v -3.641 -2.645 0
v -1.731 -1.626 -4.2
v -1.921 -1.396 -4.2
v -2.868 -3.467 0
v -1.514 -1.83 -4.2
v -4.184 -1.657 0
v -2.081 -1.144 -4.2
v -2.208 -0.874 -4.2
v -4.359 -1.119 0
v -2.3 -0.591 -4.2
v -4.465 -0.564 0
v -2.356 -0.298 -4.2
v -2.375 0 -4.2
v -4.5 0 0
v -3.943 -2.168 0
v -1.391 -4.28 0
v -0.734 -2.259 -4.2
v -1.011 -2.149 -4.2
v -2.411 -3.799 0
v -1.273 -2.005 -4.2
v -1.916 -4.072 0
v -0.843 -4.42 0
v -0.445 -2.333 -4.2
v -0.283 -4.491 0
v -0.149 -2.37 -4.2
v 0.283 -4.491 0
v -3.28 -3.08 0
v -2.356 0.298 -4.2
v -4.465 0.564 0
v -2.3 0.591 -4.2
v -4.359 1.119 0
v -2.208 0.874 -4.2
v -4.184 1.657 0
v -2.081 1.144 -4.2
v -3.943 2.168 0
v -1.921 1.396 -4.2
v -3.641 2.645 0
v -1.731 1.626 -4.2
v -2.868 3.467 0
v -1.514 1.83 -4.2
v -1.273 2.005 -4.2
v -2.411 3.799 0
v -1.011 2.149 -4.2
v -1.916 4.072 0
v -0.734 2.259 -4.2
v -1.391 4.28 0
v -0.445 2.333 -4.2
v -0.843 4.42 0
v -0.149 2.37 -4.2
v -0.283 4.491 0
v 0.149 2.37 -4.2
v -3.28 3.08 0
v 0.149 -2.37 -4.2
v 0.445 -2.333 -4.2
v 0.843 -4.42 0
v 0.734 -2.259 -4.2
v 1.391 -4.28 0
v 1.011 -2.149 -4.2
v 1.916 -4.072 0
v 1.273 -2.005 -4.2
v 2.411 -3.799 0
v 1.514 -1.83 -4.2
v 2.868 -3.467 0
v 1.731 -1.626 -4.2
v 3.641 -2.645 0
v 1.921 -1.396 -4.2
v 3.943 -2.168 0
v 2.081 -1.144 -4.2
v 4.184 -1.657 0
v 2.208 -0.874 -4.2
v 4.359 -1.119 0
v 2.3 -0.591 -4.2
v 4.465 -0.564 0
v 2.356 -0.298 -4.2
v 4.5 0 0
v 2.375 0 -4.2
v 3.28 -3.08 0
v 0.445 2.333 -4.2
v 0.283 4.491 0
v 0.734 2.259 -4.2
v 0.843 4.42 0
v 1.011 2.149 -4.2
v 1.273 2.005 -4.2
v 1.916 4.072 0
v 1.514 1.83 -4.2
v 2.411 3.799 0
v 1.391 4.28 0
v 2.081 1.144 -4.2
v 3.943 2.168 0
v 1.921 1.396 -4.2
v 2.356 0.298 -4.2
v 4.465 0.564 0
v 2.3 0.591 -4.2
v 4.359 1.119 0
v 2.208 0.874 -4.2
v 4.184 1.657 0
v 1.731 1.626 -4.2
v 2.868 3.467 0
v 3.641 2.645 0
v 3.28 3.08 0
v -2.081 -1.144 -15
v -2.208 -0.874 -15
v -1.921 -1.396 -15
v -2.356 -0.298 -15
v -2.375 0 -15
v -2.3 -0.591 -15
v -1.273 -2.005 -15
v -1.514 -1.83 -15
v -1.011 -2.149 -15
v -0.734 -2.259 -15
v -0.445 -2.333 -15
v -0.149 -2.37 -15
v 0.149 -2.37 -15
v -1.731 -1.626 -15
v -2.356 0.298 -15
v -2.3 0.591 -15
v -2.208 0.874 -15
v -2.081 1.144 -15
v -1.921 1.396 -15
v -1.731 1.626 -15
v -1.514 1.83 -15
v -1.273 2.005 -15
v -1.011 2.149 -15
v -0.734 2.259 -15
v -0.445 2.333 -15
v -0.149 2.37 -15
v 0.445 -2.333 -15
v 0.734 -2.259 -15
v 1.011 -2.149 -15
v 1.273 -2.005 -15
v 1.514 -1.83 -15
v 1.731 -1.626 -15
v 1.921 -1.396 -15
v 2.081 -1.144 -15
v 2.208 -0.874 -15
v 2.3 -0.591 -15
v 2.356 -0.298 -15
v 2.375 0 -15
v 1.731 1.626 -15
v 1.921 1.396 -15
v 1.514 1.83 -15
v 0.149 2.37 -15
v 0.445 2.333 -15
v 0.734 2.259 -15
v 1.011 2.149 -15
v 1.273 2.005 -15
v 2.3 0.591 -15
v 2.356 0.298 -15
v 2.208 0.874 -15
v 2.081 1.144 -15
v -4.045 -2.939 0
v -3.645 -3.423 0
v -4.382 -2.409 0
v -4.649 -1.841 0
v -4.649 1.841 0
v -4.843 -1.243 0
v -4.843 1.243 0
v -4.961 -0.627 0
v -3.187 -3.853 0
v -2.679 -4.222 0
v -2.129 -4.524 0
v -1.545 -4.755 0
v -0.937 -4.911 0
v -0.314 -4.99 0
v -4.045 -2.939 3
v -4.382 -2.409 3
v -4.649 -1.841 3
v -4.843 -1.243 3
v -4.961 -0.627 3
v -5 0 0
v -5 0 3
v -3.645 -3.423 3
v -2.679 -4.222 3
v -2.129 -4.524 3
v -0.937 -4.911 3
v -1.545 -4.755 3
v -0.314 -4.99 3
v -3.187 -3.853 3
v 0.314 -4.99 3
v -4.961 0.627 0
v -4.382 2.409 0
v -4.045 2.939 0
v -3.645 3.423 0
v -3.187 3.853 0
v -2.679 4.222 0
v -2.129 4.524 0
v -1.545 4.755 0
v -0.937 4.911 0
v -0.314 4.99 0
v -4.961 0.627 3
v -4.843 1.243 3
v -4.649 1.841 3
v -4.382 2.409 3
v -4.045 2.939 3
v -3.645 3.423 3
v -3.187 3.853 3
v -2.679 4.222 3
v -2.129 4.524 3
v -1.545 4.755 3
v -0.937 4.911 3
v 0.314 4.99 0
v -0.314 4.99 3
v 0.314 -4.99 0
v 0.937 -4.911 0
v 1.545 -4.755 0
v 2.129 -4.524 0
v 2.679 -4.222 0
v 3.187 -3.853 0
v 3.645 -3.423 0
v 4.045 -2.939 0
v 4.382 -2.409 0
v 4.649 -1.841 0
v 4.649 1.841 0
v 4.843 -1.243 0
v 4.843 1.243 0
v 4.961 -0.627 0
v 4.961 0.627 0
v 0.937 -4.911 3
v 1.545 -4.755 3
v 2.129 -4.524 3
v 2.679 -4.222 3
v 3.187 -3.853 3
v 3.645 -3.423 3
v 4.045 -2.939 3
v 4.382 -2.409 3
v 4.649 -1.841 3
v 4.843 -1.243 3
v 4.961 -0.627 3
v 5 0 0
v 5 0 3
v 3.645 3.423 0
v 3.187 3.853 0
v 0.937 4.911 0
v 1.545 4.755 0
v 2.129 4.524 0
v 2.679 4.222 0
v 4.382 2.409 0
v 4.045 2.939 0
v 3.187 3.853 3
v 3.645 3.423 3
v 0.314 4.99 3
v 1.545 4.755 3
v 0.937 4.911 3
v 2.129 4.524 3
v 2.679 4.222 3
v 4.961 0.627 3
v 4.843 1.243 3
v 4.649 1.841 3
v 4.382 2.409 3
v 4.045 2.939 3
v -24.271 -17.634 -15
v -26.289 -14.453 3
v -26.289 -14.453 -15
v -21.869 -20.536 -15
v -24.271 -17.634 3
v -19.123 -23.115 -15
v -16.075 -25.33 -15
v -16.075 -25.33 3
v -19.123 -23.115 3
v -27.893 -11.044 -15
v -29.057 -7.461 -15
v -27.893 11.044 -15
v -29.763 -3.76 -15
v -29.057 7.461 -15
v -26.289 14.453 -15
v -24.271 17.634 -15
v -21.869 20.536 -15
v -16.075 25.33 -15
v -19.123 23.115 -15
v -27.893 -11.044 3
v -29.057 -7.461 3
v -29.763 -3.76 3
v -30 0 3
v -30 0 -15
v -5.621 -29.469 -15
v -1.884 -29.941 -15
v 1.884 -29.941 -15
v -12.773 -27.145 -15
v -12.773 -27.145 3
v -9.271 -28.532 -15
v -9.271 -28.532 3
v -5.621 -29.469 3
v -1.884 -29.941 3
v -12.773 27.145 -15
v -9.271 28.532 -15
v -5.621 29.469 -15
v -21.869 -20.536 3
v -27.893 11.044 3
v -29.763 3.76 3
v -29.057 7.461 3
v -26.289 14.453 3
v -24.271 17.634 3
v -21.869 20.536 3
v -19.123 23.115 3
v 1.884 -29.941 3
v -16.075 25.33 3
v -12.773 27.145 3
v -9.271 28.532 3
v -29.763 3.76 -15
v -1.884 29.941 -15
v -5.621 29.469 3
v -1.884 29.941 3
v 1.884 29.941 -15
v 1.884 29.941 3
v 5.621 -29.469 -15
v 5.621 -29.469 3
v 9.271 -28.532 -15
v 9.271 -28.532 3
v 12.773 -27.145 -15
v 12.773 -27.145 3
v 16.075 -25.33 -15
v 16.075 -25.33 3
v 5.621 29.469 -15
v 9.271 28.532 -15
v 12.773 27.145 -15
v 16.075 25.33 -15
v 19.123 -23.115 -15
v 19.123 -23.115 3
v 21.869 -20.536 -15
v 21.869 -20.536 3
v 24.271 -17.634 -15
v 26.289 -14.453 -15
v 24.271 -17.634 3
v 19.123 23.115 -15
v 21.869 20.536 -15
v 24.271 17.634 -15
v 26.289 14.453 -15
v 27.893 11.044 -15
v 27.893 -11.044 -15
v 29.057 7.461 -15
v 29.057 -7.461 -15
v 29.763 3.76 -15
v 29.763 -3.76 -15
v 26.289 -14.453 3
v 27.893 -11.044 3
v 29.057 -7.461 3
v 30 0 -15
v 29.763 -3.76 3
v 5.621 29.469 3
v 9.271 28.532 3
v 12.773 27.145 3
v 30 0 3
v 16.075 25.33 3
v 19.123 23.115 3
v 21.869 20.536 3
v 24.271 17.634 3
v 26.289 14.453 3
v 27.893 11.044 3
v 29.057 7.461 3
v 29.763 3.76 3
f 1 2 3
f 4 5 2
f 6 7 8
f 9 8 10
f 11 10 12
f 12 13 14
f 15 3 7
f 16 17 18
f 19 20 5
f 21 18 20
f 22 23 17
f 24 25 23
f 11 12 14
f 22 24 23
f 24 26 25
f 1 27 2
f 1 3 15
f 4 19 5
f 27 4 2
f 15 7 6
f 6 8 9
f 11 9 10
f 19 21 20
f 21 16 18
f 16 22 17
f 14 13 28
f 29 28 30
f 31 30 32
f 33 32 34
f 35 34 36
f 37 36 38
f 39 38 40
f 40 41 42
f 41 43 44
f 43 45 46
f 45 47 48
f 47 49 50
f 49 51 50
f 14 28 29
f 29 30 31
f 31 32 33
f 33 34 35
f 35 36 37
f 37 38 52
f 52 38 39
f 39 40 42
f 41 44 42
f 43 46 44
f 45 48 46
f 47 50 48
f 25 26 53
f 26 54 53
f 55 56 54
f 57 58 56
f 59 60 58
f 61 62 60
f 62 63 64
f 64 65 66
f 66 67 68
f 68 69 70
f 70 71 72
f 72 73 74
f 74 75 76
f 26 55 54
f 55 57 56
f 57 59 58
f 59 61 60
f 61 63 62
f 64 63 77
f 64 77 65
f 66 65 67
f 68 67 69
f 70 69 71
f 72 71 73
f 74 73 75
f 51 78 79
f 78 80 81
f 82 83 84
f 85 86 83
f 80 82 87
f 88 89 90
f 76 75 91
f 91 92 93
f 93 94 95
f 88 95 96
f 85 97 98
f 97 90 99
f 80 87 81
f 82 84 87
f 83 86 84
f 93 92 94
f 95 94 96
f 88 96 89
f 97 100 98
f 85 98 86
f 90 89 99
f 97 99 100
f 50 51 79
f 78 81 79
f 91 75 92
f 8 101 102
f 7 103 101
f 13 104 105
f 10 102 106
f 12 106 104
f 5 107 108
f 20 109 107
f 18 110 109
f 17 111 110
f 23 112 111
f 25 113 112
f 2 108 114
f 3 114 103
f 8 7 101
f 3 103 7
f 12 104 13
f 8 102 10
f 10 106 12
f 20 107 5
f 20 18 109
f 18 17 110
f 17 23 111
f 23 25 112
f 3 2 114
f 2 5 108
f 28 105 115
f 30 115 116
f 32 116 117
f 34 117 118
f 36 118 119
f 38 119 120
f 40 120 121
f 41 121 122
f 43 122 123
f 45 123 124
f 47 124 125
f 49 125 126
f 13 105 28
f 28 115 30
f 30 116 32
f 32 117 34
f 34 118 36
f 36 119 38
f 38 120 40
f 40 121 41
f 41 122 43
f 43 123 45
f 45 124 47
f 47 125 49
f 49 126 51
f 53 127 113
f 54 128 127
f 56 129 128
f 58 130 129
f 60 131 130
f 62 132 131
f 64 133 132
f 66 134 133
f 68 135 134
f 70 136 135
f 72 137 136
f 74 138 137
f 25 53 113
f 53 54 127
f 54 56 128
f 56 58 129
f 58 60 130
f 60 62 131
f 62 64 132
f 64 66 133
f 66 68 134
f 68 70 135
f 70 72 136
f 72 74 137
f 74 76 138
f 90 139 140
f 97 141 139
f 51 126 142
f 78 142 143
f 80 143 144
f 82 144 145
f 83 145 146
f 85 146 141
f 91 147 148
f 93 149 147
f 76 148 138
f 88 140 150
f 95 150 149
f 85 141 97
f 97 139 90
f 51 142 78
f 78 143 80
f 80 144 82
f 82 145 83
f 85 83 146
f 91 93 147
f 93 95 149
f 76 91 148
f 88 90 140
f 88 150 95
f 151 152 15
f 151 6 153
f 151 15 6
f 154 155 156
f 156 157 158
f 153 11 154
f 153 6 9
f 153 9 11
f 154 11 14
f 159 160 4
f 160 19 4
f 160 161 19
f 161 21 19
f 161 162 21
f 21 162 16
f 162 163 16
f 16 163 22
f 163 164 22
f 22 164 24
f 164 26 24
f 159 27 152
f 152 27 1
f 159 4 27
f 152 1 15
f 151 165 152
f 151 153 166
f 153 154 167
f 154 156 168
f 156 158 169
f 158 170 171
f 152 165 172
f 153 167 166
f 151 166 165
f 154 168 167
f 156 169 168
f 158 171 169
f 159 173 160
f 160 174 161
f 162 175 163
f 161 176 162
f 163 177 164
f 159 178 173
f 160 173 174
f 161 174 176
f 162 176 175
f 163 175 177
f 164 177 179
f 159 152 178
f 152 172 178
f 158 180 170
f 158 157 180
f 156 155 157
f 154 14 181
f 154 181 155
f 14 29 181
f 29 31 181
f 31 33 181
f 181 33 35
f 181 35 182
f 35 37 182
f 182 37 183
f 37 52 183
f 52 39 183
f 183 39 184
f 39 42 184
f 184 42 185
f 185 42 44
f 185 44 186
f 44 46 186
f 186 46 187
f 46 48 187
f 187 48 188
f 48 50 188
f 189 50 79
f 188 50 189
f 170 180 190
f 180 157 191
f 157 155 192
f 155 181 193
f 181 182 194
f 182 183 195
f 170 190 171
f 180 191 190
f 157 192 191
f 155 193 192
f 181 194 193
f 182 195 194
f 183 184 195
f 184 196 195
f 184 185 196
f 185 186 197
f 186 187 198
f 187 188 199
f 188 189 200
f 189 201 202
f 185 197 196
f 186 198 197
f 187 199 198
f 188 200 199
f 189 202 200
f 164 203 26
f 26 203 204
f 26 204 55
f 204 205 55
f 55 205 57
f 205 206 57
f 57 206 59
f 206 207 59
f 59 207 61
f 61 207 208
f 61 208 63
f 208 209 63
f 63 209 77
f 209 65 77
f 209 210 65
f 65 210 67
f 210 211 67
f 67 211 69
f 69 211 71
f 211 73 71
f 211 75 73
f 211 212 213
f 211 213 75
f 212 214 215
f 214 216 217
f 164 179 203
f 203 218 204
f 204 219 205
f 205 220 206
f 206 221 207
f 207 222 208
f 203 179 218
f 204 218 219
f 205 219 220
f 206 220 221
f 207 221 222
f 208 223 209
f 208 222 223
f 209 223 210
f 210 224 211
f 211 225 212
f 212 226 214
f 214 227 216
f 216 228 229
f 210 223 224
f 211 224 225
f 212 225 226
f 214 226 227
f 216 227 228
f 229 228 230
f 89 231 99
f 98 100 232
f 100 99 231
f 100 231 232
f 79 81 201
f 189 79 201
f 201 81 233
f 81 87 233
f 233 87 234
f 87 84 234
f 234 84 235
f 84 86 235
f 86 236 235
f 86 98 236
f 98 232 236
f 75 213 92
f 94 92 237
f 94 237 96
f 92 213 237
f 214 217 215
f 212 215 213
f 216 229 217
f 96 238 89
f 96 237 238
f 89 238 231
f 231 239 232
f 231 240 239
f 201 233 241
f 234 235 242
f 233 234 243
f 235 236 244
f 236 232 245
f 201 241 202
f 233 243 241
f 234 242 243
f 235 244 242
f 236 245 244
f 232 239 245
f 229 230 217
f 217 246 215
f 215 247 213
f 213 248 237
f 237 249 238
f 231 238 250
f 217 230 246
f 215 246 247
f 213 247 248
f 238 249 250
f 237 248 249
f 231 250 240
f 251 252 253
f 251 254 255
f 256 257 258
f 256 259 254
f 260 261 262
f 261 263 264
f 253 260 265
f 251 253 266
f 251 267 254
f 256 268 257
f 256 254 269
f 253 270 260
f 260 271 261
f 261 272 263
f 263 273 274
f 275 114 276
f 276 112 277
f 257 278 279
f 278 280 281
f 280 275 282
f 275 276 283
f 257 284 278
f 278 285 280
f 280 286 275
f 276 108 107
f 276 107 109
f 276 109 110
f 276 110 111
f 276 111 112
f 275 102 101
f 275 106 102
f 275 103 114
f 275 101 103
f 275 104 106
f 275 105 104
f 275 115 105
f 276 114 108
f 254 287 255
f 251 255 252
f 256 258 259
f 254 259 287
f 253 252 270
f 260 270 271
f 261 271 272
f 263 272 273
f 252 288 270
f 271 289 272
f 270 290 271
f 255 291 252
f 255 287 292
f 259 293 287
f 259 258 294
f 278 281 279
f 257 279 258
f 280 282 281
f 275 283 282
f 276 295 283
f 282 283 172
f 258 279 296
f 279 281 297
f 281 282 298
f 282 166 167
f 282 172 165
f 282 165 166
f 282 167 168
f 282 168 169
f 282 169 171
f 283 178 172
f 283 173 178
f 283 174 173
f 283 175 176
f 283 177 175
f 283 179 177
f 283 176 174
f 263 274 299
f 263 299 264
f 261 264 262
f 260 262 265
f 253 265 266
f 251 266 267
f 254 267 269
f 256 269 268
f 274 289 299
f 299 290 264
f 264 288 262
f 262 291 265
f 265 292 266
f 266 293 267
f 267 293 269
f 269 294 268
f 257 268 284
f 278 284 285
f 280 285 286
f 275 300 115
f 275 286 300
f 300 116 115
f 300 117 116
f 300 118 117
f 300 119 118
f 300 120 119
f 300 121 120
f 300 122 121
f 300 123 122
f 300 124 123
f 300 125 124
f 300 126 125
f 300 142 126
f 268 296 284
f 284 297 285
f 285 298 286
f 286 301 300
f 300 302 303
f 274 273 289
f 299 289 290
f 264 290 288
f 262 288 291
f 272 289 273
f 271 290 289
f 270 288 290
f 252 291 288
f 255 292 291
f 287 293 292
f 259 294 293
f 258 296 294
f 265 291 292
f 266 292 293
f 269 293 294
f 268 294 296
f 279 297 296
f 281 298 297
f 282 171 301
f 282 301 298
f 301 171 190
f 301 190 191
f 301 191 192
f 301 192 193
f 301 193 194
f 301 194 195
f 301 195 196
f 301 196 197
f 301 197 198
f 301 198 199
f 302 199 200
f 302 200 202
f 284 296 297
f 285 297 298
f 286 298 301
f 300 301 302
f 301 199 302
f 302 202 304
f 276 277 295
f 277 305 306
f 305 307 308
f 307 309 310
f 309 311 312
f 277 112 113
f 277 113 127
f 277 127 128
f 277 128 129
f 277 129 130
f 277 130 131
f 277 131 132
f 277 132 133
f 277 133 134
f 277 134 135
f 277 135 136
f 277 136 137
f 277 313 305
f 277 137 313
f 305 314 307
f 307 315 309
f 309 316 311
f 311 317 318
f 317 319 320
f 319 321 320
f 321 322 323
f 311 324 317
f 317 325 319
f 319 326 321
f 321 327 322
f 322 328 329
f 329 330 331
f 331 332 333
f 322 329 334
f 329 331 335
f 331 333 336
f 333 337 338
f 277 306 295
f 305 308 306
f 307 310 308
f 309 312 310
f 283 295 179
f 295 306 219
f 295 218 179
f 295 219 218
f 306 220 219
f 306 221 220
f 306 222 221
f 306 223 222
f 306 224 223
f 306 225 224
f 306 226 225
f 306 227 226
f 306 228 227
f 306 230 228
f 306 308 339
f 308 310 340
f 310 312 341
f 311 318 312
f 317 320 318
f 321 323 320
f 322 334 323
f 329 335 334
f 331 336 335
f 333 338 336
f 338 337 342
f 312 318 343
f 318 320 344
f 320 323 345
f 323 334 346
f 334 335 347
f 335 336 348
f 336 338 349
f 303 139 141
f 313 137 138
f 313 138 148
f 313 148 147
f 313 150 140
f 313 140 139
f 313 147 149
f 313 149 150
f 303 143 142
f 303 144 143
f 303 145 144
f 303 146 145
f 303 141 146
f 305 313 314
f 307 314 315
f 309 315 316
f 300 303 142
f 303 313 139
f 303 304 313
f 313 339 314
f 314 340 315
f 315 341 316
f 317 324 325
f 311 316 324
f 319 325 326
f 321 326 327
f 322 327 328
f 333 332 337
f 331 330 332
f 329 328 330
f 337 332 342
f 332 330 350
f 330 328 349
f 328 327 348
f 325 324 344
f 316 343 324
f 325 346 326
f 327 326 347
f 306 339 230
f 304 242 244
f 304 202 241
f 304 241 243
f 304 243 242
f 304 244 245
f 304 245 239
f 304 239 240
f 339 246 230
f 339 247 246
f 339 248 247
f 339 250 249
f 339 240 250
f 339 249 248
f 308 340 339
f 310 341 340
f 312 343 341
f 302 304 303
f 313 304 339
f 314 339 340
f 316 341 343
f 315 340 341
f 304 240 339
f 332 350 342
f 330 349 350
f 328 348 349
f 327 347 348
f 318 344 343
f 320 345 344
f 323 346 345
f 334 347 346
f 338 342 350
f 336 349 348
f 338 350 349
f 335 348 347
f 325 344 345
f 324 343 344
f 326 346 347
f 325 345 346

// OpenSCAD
$fn = 50;

difference() {
	union() {
		translate(v = [0, 0, -15.0]) {
			cylinder(h = 18, r = 30.0);
		}
	}
	union() {
		translate(v = [0, 0, 0]) {
			rotate(a = [0, 0, 0]) {
				difference() {
					union() {
						translate(v = [0, 0, -18.0]) {
							cylinder(h = 18, r = 2.25);
						}
						translate(v = [0, 0, -4.2]) {
							cylinder(h = 4.2, r1 = 2.375, r2 = 4.5);
						}
						translate(v = [0, 0, -18.0]) {
							cylinder(h = 18, r = 2.375);
						}
						translate(v = [0, 0, -18.0]) {
							cylinder(h = 18, r = 2.25);
						}
					}
					union();
				}
			}
		}
		#cylinder(h = 3, r = 5.0);
	}
}
